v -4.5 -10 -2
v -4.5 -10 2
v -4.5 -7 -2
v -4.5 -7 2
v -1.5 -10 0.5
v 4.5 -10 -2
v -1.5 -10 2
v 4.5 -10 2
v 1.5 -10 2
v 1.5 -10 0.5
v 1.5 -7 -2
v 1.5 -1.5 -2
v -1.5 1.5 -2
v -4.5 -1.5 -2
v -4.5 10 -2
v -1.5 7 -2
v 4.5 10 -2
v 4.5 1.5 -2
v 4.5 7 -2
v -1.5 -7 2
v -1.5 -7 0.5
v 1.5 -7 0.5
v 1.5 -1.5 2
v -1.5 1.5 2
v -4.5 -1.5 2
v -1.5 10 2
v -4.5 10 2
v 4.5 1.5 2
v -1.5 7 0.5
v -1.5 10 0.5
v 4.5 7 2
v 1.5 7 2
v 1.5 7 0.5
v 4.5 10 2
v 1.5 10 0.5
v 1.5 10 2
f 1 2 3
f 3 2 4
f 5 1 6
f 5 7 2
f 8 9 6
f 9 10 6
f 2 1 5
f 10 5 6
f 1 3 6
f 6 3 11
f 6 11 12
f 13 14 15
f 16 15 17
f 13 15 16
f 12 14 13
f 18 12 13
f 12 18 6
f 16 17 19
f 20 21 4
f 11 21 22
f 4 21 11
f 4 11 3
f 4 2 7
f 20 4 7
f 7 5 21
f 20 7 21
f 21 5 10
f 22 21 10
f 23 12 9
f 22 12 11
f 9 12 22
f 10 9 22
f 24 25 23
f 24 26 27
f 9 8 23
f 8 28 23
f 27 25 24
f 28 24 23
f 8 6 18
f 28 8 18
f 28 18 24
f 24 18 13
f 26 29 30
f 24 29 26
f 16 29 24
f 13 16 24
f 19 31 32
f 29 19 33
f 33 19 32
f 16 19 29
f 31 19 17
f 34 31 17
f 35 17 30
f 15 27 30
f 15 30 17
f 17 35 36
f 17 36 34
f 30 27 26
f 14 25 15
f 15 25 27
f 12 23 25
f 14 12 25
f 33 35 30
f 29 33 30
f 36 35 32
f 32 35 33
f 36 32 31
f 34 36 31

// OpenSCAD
module beltTensioner(belt_width, post_width, length, thickness, notch_depth)
{
	module _beltTensioner(width, length, thickness, post_width, notch_depth)
	{
		cutout_width = width - post_width + 2;
		cutout_length = (length - post_width * 3) / 2;
		cutout_thickness = thickness + 6;

		notch_width = width - post_width * 2;
		module cutout()
		{
			translate([post_width / 2 + 1, length / 2 - cutout_length / 2 - post_width, 0])
			{
				cube([cutout_width, cutout_length, cutout_thickness], center=true);
			}
		}
	
		module notch_cutout()
		{
			translate([0,  length / 2 - post_width / 2, thickness / 2 - notch_depth / 2 + 1])
			{
				cube([notch_width, post_width + 2, notch_depth + 2], center= true);
			}
		}
		difference()
		{
			// Main body	
			cube([width, length, thickness], center=true);
	
			// Notches for "S" shape
			union()
			{
					cutout ();
					mirror([1, 0, 0])
					{
						mirror([0, 1, 0])
						{
							cutout ();
						}
					}
	
					// Notches for belt guide
					notch_cutout();
					mirror([0, 1, 0])
					{
						notch_cutout();
					}
			}
		}
	}
	_beltTensioner(belt_width + post_width * 2, length, thickness, post_width, notch_depth);
}
beltTensioner(3, 3, 20, 4, 1.5);
